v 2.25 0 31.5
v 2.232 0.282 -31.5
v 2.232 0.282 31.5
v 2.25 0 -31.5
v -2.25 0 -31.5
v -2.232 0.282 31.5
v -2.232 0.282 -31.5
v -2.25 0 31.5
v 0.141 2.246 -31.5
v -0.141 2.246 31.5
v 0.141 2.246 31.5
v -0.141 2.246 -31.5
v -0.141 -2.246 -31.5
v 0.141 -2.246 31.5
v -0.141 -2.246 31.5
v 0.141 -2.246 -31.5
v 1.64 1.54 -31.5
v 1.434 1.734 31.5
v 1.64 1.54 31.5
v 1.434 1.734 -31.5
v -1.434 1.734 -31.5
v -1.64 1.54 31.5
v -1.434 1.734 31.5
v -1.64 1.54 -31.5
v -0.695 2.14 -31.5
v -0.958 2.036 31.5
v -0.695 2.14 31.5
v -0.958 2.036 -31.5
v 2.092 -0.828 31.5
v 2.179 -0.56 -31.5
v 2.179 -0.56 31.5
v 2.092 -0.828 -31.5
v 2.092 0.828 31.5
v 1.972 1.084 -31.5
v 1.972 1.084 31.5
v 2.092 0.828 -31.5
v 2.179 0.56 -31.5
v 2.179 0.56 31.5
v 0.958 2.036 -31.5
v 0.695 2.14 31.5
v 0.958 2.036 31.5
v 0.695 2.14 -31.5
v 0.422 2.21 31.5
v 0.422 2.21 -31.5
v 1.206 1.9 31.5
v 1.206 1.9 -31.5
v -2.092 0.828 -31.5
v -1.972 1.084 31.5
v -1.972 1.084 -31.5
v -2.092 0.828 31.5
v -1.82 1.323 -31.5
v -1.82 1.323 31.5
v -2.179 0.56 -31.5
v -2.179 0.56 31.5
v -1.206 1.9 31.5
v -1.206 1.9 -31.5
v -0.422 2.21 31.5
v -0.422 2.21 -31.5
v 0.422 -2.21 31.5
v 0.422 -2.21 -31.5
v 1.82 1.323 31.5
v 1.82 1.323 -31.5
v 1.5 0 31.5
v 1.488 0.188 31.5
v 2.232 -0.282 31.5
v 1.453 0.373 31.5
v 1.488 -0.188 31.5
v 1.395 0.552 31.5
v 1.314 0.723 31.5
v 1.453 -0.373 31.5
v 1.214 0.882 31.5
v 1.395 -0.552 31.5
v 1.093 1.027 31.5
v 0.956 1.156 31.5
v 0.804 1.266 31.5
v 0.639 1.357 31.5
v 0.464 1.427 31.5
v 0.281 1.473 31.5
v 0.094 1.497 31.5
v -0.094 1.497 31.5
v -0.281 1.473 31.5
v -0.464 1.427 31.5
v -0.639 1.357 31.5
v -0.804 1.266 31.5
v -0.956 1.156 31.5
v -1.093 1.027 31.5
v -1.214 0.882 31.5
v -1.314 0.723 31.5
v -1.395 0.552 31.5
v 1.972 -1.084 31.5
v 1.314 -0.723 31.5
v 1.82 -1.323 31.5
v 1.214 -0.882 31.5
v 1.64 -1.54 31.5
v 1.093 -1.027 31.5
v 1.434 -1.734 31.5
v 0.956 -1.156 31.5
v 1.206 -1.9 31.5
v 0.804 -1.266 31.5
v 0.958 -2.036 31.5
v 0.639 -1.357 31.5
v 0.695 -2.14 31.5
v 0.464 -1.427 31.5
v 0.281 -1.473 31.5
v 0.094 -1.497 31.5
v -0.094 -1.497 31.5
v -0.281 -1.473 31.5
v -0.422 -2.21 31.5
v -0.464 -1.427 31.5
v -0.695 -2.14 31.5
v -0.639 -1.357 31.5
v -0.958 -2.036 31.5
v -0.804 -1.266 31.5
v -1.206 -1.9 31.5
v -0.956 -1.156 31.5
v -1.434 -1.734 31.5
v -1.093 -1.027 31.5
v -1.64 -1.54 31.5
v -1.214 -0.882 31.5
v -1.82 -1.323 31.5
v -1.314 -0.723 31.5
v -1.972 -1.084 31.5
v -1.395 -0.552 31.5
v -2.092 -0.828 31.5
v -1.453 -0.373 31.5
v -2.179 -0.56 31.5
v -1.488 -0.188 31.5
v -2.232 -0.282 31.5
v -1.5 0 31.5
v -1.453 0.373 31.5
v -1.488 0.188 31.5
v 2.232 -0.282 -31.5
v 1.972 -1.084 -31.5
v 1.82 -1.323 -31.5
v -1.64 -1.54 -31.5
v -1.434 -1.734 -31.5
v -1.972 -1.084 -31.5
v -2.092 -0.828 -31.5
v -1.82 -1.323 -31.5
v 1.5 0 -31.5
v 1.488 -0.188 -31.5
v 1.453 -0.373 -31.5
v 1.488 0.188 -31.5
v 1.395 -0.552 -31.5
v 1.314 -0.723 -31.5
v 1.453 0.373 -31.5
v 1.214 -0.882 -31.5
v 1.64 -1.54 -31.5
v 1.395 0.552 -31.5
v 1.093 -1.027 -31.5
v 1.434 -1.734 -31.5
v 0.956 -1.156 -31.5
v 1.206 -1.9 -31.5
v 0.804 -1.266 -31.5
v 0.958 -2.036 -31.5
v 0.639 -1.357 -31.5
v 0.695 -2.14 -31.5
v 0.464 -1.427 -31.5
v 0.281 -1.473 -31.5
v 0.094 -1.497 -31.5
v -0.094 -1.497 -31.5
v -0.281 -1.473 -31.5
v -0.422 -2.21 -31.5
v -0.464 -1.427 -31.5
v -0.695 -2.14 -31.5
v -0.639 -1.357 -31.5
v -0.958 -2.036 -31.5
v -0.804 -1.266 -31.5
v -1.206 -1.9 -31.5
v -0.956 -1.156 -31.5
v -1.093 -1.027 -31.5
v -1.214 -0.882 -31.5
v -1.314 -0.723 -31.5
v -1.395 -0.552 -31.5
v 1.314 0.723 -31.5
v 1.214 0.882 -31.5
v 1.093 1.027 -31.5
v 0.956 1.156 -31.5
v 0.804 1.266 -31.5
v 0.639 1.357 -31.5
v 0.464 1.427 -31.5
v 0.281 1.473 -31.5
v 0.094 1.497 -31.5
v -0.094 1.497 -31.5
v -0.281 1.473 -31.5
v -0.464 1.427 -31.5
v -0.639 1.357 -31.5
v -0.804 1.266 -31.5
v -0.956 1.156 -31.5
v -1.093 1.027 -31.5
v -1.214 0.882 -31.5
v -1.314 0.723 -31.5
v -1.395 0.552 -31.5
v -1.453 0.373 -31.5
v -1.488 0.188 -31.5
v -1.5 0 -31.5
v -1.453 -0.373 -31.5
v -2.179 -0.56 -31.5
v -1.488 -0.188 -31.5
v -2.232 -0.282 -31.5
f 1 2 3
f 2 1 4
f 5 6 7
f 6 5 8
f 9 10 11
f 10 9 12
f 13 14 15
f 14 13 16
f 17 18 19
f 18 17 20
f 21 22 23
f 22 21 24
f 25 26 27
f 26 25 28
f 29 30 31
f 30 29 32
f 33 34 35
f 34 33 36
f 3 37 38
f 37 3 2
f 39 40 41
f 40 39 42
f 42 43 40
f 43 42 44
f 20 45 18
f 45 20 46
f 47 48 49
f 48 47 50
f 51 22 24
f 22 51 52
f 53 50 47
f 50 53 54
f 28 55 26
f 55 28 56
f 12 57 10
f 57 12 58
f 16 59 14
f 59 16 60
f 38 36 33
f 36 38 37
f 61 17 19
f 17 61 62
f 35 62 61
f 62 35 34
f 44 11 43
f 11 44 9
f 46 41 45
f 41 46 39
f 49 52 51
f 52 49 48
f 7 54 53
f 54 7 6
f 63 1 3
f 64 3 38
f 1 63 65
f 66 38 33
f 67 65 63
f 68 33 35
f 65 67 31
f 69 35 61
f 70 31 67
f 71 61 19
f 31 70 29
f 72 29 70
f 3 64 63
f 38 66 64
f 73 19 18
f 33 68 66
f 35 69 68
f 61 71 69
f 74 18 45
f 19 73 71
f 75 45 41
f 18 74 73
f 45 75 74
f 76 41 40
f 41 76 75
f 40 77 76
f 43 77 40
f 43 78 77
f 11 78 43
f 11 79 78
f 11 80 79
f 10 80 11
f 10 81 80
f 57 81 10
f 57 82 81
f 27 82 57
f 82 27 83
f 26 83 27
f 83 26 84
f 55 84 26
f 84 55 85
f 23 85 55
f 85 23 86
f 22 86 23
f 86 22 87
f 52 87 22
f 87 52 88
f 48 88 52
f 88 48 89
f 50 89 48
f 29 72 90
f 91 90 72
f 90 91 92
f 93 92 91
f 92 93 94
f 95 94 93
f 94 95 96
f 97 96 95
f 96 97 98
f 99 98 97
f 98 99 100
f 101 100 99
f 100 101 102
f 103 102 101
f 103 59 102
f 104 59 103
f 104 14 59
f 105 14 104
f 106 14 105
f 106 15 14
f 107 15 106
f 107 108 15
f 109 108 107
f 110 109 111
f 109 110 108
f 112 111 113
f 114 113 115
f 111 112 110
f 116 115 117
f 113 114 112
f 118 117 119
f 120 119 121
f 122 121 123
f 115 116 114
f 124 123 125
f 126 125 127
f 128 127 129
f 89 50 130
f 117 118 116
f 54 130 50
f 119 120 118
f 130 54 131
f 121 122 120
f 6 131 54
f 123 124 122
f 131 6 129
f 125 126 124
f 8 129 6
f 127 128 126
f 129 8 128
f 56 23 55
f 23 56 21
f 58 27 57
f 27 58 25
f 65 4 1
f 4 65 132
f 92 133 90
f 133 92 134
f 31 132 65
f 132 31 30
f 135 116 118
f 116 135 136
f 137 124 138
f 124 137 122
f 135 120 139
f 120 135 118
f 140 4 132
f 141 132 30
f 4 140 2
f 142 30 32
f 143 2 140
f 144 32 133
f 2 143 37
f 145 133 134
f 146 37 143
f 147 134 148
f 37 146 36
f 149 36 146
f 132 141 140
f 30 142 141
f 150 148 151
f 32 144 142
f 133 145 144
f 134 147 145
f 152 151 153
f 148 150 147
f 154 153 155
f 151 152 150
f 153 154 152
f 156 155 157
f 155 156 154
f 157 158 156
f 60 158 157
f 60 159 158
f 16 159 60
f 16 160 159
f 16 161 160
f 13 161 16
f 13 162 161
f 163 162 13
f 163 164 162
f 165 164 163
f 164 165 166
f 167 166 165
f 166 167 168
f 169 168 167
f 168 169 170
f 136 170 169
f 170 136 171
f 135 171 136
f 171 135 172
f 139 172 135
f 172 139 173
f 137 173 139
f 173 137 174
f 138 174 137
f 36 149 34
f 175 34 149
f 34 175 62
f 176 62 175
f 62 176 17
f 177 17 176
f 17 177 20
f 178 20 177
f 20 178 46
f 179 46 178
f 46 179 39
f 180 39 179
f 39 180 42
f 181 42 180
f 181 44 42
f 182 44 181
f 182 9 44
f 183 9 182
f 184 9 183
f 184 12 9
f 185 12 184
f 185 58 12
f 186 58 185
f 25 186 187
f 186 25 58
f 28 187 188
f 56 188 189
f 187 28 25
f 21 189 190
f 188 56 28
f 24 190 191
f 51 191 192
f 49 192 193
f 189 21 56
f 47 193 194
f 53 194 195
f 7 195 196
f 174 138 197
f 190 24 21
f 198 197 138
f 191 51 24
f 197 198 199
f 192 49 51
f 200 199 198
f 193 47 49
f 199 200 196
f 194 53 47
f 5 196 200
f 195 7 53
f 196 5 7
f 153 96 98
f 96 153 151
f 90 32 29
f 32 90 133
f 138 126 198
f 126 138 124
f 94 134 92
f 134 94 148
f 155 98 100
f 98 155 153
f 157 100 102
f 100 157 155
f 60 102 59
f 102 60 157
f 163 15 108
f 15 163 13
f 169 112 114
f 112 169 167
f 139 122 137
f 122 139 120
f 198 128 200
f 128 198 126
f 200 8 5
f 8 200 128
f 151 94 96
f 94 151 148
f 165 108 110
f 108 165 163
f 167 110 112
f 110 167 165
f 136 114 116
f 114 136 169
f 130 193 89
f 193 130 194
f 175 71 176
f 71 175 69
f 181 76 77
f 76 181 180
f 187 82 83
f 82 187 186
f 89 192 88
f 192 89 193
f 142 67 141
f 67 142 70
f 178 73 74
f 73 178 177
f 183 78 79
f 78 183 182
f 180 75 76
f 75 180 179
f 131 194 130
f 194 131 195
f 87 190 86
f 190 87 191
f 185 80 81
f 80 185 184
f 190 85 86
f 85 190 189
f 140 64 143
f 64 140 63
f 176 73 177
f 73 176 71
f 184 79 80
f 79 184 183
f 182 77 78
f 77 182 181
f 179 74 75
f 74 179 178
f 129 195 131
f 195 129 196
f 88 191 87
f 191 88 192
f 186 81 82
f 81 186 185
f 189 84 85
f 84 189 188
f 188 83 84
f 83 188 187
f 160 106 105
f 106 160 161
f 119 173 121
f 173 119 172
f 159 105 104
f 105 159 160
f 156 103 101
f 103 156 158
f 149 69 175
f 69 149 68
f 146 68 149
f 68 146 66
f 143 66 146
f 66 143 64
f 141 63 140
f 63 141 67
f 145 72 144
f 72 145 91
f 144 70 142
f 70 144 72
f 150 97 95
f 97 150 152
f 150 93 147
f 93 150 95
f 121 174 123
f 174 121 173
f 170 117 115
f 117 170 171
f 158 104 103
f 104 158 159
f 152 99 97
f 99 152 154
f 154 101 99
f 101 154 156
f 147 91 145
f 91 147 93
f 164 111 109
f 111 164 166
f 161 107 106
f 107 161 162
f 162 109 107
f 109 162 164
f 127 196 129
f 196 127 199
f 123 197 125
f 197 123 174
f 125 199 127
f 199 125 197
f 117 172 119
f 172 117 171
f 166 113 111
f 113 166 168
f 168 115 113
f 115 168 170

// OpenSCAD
$fn = 50;


difference() {
	union() {
		translate(v = [0, 0, -31.5000000000]) {
			cylinder(h = 63, r = 2.2500000000);
		}
	}
	union() {
		translate(v = [0, 0, -100.0000000000]) {
			cylinder(h = 200, r = 1.5000000000);
		}
	}
}
